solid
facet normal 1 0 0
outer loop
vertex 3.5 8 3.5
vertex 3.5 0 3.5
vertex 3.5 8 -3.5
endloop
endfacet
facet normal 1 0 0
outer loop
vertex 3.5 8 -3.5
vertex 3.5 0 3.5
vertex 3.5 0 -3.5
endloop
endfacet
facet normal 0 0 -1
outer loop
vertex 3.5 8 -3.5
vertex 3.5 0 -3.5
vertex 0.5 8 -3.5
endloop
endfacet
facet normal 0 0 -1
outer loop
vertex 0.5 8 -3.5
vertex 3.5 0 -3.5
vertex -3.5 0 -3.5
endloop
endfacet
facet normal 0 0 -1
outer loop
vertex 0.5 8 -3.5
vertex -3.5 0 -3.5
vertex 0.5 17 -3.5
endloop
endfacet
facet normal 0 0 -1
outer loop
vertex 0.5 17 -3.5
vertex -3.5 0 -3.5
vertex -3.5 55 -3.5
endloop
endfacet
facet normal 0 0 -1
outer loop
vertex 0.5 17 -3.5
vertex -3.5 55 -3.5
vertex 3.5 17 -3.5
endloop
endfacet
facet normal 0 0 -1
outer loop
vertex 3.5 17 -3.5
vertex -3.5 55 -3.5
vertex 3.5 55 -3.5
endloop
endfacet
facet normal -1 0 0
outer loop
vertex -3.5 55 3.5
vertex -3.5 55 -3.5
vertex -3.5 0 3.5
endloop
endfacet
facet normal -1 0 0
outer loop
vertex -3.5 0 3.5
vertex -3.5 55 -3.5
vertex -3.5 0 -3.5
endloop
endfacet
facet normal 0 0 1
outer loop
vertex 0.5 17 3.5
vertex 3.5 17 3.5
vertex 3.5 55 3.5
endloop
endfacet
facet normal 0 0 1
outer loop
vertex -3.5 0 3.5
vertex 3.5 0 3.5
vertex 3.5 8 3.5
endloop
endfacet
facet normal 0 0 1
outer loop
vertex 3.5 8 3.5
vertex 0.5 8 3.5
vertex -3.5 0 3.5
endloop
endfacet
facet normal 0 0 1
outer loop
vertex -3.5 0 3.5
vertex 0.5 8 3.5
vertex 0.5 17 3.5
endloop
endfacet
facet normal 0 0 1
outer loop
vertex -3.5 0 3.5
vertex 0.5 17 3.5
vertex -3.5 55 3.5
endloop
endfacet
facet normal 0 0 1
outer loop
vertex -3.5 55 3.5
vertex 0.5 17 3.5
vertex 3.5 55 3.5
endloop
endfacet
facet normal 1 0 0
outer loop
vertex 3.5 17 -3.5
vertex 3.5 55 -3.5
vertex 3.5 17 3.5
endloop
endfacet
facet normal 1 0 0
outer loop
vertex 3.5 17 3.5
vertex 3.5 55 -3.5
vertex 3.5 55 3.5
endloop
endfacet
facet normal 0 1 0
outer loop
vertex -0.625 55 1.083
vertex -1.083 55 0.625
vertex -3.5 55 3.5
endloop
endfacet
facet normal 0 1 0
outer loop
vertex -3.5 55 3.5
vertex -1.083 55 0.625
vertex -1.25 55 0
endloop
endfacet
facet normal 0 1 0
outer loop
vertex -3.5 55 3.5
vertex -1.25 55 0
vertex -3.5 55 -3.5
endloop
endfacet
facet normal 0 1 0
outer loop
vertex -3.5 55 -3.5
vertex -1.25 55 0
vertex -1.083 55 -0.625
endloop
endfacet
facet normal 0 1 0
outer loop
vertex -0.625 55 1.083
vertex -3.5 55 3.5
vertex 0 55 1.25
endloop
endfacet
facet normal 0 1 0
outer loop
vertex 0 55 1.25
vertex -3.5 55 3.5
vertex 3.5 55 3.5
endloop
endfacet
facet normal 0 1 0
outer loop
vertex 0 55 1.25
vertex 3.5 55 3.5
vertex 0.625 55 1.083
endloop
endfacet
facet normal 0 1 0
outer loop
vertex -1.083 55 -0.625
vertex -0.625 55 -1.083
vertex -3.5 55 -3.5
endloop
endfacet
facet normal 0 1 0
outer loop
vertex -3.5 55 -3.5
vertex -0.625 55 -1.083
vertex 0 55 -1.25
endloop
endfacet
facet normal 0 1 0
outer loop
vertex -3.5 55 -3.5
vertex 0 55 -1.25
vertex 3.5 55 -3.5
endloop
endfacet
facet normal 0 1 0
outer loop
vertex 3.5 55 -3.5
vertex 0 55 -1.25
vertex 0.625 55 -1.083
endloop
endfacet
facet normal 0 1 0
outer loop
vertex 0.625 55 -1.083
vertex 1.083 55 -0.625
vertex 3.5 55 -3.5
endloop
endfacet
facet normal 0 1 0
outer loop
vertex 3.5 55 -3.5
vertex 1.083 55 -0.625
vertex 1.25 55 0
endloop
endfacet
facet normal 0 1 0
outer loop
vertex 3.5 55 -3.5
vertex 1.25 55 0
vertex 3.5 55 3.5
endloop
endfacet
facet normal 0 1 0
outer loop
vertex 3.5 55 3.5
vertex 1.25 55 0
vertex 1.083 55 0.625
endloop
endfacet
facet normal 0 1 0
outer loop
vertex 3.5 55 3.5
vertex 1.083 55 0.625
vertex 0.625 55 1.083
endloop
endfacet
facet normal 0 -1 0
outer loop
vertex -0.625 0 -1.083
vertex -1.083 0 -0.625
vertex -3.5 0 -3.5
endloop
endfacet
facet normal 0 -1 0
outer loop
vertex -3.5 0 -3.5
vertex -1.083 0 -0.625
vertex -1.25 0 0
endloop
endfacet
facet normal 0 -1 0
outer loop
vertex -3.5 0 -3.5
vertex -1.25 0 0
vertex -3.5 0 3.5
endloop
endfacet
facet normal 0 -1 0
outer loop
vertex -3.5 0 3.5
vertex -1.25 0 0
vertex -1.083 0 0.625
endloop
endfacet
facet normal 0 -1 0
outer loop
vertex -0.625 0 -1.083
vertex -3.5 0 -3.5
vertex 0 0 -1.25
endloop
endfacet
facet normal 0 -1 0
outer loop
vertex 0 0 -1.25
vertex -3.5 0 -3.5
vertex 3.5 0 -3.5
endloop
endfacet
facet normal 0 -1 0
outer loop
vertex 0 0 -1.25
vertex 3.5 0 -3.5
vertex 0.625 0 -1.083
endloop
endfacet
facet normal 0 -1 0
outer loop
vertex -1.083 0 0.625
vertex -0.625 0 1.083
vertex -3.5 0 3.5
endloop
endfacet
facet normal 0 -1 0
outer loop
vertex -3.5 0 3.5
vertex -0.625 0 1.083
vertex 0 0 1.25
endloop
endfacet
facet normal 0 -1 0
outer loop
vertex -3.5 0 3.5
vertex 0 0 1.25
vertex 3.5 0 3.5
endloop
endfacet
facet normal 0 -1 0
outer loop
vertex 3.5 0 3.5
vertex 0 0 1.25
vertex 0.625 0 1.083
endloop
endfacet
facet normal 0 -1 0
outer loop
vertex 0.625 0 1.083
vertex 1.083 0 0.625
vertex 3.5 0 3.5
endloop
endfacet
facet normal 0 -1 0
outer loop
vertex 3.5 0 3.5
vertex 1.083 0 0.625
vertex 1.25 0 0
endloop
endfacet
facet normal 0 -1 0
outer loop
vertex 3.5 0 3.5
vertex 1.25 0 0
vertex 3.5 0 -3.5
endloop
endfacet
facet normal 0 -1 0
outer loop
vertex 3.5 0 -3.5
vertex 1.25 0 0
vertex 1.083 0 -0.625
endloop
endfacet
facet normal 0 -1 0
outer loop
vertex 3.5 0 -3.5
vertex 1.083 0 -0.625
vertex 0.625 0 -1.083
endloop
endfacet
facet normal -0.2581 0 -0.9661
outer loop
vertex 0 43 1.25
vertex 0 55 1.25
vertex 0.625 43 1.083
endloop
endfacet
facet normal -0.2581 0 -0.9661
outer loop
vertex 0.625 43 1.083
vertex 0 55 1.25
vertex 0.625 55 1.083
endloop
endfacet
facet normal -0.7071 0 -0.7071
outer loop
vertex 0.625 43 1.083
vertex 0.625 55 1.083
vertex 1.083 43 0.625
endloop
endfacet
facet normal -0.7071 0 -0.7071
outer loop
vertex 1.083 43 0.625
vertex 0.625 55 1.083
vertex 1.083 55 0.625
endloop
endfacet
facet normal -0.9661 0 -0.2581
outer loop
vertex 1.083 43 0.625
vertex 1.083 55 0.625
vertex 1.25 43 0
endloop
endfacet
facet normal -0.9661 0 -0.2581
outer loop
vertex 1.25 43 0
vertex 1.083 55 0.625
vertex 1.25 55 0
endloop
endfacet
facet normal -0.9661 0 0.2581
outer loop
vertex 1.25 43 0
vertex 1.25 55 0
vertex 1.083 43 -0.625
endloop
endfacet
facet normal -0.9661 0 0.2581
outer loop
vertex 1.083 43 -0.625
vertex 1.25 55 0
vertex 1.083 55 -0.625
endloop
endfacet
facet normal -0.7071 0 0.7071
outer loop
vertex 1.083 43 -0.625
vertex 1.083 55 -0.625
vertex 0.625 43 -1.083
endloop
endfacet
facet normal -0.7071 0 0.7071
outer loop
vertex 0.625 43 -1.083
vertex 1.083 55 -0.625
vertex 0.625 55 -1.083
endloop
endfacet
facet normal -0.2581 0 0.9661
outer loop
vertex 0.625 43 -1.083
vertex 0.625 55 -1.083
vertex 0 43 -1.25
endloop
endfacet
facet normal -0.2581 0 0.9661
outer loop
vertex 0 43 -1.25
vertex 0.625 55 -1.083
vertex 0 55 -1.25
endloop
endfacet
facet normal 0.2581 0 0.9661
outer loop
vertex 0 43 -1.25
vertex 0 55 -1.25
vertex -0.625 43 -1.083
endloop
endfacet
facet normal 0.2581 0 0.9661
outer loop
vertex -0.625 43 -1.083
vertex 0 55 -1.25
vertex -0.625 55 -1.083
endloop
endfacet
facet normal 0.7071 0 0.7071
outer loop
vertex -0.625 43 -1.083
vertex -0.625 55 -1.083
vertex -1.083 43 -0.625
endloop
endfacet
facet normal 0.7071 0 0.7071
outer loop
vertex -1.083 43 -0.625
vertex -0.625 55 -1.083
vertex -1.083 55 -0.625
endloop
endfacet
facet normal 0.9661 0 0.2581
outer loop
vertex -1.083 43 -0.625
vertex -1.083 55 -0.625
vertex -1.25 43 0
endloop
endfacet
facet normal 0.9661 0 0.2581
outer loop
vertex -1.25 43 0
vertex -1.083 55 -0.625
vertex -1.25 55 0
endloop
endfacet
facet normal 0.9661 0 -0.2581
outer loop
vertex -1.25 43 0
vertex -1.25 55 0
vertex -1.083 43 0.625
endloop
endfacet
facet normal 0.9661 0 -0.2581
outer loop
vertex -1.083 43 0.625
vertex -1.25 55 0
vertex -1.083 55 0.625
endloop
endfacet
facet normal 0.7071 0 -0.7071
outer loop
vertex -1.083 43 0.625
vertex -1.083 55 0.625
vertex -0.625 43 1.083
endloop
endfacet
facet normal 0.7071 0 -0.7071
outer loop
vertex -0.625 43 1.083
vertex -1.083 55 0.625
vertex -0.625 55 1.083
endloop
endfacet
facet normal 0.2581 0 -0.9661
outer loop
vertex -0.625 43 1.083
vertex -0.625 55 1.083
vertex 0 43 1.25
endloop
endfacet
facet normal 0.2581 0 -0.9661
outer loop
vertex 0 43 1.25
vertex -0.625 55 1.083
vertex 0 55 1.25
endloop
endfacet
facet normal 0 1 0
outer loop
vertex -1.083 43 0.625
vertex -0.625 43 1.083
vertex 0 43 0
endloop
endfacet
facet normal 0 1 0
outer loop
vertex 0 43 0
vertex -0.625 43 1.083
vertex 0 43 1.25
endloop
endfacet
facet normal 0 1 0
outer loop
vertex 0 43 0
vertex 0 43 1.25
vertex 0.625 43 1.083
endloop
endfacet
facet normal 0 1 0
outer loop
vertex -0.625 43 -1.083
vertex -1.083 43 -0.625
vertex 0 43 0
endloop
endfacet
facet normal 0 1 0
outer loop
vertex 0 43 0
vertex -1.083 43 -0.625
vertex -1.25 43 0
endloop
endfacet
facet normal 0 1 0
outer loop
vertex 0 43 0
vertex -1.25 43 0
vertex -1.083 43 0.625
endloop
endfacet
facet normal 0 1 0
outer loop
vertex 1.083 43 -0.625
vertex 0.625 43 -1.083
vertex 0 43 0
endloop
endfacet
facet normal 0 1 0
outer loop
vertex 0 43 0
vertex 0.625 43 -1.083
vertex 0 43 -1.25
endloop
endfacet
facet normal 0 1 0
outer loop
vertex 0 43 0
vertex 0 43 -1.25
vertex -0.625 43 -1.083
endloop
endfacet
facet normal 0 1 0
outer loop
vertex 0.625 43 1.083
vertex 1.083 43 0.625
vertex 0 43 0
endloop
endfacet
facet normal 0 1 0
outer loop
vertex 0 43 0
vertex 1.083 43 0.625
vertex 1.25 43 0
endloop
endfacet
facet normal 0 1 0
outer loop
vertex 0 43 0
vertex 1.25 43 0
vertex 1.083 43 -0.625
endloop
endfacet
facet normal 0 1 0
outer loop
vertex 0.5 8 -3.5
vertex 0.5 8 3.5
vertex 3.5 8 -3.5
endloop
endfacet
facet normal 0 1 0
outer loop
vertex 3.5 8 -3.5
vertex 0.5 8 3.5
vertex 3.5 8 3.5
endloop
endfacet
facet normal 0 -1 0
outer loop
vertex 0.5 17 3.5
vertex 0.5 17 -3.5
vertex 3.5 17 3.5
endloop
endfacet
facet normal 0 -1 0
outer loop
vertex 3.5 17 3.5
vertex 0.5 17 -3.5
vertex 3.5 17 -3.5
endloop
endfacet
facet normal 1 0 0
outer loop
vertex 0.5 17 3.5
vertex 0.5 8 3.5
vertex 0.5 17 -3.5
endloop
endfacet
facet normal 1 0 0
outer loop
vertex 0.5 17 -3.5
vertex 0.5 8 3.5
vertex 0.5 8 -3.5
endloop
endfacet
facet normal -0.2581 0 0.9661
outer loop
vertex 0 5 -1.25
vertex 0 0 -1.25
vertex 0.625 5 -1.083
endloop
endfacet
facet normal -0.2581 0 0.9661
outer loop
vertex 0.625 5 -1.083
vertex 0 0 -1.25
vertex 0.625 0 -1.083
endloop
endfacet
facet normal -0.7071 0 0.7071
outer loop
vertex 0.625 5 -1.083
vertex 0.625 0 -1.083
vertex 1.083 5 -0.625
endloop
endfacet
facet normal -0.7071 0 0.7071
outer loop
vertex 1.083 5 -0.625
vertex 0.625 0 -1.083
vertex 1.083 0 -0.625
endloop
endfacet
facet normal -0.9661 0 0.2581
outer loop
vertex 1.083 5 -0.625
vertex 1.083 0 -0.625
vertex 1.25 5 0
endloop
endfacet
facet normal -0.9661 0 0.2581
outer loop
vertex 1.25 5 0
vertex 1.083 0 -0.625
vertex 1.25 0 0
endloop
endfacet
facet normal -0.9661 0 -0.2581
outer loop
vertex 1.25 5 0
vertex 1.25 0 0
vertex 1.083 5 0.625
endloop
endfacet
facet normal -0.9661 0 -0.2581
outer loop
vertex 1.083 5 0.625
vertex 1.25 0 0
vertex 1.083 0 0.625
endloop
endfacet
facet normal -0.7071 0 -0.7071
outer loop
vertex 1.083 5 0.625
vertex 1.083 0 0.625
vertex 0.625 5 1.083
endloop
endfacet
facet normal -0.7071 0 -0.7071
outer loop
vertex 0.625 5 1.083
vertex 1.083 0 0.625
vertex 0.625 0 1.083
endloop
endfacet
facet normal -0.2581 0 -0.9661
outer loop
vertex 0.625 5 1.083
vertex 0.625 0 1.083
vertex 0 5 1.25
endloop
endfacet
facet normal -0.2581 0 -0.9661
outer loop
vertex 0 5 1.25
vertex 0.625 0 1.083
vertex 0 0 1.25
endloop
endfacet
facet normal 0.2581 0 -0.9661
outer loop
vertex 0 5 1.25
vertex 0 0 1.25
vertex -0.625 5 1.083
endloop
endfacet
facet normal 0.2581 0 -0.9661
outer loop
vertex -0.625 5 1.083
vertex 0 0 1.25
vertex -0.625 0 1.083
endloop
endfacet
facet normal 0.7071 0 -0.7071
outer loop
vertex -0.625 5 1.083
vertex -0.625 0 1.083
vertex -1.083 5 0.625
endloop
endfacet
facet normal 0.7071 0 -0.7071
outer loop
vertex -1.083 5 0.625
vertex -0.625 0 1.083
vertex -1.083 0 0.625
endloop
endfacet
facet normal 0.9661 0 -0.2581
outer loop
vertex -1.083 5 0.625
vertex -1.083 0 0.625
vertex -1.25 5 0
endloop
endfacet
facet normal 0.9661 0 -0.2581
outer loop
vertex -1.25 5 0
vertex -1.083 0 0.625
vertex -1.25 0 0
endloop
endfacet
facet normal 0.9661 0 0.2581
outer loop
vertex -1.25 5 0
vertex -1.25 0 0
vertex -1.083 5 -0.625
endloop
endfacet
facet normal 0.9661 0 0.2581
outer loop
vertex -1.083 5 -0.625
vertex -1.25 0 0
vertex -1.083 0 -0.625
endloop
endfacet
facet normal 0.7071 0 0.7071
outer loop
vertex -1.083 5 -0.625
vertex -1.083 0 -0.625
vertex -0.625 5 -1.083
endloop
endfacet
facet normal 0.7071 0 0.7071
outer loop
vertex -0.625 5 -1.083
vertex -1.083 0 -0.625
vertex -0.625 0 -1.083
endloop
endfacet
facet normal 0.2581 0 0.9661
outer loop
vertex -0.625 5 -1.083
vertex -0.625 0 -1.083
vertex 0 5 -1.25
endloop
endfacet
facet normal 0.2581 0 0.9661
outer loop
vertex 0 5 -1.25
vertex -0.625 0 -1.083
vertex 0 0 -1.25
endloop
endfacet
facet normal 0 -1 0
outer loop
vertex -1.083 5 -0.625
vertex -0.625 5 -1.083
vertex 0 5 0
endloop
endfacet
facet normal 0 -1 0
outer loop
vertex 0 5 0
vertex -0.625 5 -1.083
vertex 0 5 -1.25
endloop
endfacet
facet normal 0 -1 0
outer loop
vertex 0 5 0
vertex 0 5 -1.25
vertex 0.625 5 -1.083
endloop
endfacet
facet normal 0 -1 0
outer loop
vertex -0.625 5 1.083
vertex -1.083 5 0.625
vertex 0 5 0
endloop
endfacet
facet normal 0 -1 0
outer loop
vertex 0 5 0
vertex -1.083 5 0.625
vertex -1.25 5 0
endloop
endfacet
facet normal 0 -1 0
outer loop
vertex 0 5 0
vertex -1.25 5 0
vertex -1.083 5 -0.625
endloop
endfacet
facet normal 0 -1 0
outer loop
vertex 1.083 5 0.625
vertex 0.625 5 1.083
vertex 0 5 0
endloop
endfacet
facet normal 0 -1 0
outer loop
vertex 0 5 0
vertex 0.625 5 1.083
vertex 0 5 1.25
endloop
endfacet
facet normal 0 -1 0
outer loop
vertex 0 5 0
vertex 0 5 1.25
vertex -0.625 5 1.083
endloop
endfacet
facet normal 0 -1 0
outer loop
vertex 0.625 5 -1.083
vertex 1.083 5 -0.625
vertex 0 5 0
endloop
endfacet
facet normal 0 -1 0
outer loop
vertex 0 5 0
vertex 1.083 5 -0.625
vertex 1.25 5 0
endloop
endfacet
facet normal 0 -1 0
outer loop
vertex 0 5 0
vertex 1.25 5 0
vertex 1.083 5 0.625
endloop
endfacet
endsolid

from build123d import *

# Parameters (mm, degrees)
BOSS_EXTRUDE1_DEPTH = 55
SKETCH2_R           = 1.25
CUT_EXTRUDE1_DEPTH  = 12
SKETCH4_W           = 7
SKETCH4_H           = 9
CUT_EXTRUDE3_DEPTH  = 3
CUT_EXTRUDE4_START  = -5
SKETCH3_R           = 1.25
CUT_EXTRUDE4_DEPTH  = 5


with BuildPart() as part:
    # Sketch1 → Boss-Extrude1 (new body)
    with BuildSketch(Plane(origin=(0, 0, 0), x_dir=(1, 0, 0), z_dir=(0, 1, 0))):
        Polygon((0, 3.5), (-3.5, 3.5), (-3.5, -3.5), (3.5, -3.5), (3.5, 3.5), align=None)
    extrude(amount=BOSS_EXTRUDE1_DEPTH)

    # Sketch2 → Cut-Extrude1 (cut)
    with BuildSketch(Plane(origin=(0, 55, 0), x_dir=(1, 0, 0), z_dir=(0, 1, 0))):
        with Locations(Location((0, 0, 0), (0, 0, 270))):
            Circle(SKETCH2_R)
    extrude(amount=-CUT_EXTRUDE1_DEPTH, mode=Mode.SUBTRACT)

    # Sketch4 → Cut-Extrude3 (cut)
    with BuildSketch(Plane(origin=(3.5, 0, 0), x_dir=(0, 0, -1), z_dir=(1, 0, 0))):
        with Locations((0, 12.5)):
            Rectangle(SKETCH4_W, SKETCH4_H)
    extrude(amount=-CUT_EXTRUDE3_DEPTH, mode=Mode.SUBTRACT)

    # Sketch3 → Cut-Extrude4 (cut)
    with BuildSketch(Plane.XZ.offset(CUT_EXTRUDE4_START)):
        with Locations(Location((0, 0, 0), (0, 0, 90))):
            Circle(SKETCH3_R)
    extrude(amount=CUT_EXTRUDE4_DEPTH, mode=Mode.SUBTRACT)


solid = part.part
